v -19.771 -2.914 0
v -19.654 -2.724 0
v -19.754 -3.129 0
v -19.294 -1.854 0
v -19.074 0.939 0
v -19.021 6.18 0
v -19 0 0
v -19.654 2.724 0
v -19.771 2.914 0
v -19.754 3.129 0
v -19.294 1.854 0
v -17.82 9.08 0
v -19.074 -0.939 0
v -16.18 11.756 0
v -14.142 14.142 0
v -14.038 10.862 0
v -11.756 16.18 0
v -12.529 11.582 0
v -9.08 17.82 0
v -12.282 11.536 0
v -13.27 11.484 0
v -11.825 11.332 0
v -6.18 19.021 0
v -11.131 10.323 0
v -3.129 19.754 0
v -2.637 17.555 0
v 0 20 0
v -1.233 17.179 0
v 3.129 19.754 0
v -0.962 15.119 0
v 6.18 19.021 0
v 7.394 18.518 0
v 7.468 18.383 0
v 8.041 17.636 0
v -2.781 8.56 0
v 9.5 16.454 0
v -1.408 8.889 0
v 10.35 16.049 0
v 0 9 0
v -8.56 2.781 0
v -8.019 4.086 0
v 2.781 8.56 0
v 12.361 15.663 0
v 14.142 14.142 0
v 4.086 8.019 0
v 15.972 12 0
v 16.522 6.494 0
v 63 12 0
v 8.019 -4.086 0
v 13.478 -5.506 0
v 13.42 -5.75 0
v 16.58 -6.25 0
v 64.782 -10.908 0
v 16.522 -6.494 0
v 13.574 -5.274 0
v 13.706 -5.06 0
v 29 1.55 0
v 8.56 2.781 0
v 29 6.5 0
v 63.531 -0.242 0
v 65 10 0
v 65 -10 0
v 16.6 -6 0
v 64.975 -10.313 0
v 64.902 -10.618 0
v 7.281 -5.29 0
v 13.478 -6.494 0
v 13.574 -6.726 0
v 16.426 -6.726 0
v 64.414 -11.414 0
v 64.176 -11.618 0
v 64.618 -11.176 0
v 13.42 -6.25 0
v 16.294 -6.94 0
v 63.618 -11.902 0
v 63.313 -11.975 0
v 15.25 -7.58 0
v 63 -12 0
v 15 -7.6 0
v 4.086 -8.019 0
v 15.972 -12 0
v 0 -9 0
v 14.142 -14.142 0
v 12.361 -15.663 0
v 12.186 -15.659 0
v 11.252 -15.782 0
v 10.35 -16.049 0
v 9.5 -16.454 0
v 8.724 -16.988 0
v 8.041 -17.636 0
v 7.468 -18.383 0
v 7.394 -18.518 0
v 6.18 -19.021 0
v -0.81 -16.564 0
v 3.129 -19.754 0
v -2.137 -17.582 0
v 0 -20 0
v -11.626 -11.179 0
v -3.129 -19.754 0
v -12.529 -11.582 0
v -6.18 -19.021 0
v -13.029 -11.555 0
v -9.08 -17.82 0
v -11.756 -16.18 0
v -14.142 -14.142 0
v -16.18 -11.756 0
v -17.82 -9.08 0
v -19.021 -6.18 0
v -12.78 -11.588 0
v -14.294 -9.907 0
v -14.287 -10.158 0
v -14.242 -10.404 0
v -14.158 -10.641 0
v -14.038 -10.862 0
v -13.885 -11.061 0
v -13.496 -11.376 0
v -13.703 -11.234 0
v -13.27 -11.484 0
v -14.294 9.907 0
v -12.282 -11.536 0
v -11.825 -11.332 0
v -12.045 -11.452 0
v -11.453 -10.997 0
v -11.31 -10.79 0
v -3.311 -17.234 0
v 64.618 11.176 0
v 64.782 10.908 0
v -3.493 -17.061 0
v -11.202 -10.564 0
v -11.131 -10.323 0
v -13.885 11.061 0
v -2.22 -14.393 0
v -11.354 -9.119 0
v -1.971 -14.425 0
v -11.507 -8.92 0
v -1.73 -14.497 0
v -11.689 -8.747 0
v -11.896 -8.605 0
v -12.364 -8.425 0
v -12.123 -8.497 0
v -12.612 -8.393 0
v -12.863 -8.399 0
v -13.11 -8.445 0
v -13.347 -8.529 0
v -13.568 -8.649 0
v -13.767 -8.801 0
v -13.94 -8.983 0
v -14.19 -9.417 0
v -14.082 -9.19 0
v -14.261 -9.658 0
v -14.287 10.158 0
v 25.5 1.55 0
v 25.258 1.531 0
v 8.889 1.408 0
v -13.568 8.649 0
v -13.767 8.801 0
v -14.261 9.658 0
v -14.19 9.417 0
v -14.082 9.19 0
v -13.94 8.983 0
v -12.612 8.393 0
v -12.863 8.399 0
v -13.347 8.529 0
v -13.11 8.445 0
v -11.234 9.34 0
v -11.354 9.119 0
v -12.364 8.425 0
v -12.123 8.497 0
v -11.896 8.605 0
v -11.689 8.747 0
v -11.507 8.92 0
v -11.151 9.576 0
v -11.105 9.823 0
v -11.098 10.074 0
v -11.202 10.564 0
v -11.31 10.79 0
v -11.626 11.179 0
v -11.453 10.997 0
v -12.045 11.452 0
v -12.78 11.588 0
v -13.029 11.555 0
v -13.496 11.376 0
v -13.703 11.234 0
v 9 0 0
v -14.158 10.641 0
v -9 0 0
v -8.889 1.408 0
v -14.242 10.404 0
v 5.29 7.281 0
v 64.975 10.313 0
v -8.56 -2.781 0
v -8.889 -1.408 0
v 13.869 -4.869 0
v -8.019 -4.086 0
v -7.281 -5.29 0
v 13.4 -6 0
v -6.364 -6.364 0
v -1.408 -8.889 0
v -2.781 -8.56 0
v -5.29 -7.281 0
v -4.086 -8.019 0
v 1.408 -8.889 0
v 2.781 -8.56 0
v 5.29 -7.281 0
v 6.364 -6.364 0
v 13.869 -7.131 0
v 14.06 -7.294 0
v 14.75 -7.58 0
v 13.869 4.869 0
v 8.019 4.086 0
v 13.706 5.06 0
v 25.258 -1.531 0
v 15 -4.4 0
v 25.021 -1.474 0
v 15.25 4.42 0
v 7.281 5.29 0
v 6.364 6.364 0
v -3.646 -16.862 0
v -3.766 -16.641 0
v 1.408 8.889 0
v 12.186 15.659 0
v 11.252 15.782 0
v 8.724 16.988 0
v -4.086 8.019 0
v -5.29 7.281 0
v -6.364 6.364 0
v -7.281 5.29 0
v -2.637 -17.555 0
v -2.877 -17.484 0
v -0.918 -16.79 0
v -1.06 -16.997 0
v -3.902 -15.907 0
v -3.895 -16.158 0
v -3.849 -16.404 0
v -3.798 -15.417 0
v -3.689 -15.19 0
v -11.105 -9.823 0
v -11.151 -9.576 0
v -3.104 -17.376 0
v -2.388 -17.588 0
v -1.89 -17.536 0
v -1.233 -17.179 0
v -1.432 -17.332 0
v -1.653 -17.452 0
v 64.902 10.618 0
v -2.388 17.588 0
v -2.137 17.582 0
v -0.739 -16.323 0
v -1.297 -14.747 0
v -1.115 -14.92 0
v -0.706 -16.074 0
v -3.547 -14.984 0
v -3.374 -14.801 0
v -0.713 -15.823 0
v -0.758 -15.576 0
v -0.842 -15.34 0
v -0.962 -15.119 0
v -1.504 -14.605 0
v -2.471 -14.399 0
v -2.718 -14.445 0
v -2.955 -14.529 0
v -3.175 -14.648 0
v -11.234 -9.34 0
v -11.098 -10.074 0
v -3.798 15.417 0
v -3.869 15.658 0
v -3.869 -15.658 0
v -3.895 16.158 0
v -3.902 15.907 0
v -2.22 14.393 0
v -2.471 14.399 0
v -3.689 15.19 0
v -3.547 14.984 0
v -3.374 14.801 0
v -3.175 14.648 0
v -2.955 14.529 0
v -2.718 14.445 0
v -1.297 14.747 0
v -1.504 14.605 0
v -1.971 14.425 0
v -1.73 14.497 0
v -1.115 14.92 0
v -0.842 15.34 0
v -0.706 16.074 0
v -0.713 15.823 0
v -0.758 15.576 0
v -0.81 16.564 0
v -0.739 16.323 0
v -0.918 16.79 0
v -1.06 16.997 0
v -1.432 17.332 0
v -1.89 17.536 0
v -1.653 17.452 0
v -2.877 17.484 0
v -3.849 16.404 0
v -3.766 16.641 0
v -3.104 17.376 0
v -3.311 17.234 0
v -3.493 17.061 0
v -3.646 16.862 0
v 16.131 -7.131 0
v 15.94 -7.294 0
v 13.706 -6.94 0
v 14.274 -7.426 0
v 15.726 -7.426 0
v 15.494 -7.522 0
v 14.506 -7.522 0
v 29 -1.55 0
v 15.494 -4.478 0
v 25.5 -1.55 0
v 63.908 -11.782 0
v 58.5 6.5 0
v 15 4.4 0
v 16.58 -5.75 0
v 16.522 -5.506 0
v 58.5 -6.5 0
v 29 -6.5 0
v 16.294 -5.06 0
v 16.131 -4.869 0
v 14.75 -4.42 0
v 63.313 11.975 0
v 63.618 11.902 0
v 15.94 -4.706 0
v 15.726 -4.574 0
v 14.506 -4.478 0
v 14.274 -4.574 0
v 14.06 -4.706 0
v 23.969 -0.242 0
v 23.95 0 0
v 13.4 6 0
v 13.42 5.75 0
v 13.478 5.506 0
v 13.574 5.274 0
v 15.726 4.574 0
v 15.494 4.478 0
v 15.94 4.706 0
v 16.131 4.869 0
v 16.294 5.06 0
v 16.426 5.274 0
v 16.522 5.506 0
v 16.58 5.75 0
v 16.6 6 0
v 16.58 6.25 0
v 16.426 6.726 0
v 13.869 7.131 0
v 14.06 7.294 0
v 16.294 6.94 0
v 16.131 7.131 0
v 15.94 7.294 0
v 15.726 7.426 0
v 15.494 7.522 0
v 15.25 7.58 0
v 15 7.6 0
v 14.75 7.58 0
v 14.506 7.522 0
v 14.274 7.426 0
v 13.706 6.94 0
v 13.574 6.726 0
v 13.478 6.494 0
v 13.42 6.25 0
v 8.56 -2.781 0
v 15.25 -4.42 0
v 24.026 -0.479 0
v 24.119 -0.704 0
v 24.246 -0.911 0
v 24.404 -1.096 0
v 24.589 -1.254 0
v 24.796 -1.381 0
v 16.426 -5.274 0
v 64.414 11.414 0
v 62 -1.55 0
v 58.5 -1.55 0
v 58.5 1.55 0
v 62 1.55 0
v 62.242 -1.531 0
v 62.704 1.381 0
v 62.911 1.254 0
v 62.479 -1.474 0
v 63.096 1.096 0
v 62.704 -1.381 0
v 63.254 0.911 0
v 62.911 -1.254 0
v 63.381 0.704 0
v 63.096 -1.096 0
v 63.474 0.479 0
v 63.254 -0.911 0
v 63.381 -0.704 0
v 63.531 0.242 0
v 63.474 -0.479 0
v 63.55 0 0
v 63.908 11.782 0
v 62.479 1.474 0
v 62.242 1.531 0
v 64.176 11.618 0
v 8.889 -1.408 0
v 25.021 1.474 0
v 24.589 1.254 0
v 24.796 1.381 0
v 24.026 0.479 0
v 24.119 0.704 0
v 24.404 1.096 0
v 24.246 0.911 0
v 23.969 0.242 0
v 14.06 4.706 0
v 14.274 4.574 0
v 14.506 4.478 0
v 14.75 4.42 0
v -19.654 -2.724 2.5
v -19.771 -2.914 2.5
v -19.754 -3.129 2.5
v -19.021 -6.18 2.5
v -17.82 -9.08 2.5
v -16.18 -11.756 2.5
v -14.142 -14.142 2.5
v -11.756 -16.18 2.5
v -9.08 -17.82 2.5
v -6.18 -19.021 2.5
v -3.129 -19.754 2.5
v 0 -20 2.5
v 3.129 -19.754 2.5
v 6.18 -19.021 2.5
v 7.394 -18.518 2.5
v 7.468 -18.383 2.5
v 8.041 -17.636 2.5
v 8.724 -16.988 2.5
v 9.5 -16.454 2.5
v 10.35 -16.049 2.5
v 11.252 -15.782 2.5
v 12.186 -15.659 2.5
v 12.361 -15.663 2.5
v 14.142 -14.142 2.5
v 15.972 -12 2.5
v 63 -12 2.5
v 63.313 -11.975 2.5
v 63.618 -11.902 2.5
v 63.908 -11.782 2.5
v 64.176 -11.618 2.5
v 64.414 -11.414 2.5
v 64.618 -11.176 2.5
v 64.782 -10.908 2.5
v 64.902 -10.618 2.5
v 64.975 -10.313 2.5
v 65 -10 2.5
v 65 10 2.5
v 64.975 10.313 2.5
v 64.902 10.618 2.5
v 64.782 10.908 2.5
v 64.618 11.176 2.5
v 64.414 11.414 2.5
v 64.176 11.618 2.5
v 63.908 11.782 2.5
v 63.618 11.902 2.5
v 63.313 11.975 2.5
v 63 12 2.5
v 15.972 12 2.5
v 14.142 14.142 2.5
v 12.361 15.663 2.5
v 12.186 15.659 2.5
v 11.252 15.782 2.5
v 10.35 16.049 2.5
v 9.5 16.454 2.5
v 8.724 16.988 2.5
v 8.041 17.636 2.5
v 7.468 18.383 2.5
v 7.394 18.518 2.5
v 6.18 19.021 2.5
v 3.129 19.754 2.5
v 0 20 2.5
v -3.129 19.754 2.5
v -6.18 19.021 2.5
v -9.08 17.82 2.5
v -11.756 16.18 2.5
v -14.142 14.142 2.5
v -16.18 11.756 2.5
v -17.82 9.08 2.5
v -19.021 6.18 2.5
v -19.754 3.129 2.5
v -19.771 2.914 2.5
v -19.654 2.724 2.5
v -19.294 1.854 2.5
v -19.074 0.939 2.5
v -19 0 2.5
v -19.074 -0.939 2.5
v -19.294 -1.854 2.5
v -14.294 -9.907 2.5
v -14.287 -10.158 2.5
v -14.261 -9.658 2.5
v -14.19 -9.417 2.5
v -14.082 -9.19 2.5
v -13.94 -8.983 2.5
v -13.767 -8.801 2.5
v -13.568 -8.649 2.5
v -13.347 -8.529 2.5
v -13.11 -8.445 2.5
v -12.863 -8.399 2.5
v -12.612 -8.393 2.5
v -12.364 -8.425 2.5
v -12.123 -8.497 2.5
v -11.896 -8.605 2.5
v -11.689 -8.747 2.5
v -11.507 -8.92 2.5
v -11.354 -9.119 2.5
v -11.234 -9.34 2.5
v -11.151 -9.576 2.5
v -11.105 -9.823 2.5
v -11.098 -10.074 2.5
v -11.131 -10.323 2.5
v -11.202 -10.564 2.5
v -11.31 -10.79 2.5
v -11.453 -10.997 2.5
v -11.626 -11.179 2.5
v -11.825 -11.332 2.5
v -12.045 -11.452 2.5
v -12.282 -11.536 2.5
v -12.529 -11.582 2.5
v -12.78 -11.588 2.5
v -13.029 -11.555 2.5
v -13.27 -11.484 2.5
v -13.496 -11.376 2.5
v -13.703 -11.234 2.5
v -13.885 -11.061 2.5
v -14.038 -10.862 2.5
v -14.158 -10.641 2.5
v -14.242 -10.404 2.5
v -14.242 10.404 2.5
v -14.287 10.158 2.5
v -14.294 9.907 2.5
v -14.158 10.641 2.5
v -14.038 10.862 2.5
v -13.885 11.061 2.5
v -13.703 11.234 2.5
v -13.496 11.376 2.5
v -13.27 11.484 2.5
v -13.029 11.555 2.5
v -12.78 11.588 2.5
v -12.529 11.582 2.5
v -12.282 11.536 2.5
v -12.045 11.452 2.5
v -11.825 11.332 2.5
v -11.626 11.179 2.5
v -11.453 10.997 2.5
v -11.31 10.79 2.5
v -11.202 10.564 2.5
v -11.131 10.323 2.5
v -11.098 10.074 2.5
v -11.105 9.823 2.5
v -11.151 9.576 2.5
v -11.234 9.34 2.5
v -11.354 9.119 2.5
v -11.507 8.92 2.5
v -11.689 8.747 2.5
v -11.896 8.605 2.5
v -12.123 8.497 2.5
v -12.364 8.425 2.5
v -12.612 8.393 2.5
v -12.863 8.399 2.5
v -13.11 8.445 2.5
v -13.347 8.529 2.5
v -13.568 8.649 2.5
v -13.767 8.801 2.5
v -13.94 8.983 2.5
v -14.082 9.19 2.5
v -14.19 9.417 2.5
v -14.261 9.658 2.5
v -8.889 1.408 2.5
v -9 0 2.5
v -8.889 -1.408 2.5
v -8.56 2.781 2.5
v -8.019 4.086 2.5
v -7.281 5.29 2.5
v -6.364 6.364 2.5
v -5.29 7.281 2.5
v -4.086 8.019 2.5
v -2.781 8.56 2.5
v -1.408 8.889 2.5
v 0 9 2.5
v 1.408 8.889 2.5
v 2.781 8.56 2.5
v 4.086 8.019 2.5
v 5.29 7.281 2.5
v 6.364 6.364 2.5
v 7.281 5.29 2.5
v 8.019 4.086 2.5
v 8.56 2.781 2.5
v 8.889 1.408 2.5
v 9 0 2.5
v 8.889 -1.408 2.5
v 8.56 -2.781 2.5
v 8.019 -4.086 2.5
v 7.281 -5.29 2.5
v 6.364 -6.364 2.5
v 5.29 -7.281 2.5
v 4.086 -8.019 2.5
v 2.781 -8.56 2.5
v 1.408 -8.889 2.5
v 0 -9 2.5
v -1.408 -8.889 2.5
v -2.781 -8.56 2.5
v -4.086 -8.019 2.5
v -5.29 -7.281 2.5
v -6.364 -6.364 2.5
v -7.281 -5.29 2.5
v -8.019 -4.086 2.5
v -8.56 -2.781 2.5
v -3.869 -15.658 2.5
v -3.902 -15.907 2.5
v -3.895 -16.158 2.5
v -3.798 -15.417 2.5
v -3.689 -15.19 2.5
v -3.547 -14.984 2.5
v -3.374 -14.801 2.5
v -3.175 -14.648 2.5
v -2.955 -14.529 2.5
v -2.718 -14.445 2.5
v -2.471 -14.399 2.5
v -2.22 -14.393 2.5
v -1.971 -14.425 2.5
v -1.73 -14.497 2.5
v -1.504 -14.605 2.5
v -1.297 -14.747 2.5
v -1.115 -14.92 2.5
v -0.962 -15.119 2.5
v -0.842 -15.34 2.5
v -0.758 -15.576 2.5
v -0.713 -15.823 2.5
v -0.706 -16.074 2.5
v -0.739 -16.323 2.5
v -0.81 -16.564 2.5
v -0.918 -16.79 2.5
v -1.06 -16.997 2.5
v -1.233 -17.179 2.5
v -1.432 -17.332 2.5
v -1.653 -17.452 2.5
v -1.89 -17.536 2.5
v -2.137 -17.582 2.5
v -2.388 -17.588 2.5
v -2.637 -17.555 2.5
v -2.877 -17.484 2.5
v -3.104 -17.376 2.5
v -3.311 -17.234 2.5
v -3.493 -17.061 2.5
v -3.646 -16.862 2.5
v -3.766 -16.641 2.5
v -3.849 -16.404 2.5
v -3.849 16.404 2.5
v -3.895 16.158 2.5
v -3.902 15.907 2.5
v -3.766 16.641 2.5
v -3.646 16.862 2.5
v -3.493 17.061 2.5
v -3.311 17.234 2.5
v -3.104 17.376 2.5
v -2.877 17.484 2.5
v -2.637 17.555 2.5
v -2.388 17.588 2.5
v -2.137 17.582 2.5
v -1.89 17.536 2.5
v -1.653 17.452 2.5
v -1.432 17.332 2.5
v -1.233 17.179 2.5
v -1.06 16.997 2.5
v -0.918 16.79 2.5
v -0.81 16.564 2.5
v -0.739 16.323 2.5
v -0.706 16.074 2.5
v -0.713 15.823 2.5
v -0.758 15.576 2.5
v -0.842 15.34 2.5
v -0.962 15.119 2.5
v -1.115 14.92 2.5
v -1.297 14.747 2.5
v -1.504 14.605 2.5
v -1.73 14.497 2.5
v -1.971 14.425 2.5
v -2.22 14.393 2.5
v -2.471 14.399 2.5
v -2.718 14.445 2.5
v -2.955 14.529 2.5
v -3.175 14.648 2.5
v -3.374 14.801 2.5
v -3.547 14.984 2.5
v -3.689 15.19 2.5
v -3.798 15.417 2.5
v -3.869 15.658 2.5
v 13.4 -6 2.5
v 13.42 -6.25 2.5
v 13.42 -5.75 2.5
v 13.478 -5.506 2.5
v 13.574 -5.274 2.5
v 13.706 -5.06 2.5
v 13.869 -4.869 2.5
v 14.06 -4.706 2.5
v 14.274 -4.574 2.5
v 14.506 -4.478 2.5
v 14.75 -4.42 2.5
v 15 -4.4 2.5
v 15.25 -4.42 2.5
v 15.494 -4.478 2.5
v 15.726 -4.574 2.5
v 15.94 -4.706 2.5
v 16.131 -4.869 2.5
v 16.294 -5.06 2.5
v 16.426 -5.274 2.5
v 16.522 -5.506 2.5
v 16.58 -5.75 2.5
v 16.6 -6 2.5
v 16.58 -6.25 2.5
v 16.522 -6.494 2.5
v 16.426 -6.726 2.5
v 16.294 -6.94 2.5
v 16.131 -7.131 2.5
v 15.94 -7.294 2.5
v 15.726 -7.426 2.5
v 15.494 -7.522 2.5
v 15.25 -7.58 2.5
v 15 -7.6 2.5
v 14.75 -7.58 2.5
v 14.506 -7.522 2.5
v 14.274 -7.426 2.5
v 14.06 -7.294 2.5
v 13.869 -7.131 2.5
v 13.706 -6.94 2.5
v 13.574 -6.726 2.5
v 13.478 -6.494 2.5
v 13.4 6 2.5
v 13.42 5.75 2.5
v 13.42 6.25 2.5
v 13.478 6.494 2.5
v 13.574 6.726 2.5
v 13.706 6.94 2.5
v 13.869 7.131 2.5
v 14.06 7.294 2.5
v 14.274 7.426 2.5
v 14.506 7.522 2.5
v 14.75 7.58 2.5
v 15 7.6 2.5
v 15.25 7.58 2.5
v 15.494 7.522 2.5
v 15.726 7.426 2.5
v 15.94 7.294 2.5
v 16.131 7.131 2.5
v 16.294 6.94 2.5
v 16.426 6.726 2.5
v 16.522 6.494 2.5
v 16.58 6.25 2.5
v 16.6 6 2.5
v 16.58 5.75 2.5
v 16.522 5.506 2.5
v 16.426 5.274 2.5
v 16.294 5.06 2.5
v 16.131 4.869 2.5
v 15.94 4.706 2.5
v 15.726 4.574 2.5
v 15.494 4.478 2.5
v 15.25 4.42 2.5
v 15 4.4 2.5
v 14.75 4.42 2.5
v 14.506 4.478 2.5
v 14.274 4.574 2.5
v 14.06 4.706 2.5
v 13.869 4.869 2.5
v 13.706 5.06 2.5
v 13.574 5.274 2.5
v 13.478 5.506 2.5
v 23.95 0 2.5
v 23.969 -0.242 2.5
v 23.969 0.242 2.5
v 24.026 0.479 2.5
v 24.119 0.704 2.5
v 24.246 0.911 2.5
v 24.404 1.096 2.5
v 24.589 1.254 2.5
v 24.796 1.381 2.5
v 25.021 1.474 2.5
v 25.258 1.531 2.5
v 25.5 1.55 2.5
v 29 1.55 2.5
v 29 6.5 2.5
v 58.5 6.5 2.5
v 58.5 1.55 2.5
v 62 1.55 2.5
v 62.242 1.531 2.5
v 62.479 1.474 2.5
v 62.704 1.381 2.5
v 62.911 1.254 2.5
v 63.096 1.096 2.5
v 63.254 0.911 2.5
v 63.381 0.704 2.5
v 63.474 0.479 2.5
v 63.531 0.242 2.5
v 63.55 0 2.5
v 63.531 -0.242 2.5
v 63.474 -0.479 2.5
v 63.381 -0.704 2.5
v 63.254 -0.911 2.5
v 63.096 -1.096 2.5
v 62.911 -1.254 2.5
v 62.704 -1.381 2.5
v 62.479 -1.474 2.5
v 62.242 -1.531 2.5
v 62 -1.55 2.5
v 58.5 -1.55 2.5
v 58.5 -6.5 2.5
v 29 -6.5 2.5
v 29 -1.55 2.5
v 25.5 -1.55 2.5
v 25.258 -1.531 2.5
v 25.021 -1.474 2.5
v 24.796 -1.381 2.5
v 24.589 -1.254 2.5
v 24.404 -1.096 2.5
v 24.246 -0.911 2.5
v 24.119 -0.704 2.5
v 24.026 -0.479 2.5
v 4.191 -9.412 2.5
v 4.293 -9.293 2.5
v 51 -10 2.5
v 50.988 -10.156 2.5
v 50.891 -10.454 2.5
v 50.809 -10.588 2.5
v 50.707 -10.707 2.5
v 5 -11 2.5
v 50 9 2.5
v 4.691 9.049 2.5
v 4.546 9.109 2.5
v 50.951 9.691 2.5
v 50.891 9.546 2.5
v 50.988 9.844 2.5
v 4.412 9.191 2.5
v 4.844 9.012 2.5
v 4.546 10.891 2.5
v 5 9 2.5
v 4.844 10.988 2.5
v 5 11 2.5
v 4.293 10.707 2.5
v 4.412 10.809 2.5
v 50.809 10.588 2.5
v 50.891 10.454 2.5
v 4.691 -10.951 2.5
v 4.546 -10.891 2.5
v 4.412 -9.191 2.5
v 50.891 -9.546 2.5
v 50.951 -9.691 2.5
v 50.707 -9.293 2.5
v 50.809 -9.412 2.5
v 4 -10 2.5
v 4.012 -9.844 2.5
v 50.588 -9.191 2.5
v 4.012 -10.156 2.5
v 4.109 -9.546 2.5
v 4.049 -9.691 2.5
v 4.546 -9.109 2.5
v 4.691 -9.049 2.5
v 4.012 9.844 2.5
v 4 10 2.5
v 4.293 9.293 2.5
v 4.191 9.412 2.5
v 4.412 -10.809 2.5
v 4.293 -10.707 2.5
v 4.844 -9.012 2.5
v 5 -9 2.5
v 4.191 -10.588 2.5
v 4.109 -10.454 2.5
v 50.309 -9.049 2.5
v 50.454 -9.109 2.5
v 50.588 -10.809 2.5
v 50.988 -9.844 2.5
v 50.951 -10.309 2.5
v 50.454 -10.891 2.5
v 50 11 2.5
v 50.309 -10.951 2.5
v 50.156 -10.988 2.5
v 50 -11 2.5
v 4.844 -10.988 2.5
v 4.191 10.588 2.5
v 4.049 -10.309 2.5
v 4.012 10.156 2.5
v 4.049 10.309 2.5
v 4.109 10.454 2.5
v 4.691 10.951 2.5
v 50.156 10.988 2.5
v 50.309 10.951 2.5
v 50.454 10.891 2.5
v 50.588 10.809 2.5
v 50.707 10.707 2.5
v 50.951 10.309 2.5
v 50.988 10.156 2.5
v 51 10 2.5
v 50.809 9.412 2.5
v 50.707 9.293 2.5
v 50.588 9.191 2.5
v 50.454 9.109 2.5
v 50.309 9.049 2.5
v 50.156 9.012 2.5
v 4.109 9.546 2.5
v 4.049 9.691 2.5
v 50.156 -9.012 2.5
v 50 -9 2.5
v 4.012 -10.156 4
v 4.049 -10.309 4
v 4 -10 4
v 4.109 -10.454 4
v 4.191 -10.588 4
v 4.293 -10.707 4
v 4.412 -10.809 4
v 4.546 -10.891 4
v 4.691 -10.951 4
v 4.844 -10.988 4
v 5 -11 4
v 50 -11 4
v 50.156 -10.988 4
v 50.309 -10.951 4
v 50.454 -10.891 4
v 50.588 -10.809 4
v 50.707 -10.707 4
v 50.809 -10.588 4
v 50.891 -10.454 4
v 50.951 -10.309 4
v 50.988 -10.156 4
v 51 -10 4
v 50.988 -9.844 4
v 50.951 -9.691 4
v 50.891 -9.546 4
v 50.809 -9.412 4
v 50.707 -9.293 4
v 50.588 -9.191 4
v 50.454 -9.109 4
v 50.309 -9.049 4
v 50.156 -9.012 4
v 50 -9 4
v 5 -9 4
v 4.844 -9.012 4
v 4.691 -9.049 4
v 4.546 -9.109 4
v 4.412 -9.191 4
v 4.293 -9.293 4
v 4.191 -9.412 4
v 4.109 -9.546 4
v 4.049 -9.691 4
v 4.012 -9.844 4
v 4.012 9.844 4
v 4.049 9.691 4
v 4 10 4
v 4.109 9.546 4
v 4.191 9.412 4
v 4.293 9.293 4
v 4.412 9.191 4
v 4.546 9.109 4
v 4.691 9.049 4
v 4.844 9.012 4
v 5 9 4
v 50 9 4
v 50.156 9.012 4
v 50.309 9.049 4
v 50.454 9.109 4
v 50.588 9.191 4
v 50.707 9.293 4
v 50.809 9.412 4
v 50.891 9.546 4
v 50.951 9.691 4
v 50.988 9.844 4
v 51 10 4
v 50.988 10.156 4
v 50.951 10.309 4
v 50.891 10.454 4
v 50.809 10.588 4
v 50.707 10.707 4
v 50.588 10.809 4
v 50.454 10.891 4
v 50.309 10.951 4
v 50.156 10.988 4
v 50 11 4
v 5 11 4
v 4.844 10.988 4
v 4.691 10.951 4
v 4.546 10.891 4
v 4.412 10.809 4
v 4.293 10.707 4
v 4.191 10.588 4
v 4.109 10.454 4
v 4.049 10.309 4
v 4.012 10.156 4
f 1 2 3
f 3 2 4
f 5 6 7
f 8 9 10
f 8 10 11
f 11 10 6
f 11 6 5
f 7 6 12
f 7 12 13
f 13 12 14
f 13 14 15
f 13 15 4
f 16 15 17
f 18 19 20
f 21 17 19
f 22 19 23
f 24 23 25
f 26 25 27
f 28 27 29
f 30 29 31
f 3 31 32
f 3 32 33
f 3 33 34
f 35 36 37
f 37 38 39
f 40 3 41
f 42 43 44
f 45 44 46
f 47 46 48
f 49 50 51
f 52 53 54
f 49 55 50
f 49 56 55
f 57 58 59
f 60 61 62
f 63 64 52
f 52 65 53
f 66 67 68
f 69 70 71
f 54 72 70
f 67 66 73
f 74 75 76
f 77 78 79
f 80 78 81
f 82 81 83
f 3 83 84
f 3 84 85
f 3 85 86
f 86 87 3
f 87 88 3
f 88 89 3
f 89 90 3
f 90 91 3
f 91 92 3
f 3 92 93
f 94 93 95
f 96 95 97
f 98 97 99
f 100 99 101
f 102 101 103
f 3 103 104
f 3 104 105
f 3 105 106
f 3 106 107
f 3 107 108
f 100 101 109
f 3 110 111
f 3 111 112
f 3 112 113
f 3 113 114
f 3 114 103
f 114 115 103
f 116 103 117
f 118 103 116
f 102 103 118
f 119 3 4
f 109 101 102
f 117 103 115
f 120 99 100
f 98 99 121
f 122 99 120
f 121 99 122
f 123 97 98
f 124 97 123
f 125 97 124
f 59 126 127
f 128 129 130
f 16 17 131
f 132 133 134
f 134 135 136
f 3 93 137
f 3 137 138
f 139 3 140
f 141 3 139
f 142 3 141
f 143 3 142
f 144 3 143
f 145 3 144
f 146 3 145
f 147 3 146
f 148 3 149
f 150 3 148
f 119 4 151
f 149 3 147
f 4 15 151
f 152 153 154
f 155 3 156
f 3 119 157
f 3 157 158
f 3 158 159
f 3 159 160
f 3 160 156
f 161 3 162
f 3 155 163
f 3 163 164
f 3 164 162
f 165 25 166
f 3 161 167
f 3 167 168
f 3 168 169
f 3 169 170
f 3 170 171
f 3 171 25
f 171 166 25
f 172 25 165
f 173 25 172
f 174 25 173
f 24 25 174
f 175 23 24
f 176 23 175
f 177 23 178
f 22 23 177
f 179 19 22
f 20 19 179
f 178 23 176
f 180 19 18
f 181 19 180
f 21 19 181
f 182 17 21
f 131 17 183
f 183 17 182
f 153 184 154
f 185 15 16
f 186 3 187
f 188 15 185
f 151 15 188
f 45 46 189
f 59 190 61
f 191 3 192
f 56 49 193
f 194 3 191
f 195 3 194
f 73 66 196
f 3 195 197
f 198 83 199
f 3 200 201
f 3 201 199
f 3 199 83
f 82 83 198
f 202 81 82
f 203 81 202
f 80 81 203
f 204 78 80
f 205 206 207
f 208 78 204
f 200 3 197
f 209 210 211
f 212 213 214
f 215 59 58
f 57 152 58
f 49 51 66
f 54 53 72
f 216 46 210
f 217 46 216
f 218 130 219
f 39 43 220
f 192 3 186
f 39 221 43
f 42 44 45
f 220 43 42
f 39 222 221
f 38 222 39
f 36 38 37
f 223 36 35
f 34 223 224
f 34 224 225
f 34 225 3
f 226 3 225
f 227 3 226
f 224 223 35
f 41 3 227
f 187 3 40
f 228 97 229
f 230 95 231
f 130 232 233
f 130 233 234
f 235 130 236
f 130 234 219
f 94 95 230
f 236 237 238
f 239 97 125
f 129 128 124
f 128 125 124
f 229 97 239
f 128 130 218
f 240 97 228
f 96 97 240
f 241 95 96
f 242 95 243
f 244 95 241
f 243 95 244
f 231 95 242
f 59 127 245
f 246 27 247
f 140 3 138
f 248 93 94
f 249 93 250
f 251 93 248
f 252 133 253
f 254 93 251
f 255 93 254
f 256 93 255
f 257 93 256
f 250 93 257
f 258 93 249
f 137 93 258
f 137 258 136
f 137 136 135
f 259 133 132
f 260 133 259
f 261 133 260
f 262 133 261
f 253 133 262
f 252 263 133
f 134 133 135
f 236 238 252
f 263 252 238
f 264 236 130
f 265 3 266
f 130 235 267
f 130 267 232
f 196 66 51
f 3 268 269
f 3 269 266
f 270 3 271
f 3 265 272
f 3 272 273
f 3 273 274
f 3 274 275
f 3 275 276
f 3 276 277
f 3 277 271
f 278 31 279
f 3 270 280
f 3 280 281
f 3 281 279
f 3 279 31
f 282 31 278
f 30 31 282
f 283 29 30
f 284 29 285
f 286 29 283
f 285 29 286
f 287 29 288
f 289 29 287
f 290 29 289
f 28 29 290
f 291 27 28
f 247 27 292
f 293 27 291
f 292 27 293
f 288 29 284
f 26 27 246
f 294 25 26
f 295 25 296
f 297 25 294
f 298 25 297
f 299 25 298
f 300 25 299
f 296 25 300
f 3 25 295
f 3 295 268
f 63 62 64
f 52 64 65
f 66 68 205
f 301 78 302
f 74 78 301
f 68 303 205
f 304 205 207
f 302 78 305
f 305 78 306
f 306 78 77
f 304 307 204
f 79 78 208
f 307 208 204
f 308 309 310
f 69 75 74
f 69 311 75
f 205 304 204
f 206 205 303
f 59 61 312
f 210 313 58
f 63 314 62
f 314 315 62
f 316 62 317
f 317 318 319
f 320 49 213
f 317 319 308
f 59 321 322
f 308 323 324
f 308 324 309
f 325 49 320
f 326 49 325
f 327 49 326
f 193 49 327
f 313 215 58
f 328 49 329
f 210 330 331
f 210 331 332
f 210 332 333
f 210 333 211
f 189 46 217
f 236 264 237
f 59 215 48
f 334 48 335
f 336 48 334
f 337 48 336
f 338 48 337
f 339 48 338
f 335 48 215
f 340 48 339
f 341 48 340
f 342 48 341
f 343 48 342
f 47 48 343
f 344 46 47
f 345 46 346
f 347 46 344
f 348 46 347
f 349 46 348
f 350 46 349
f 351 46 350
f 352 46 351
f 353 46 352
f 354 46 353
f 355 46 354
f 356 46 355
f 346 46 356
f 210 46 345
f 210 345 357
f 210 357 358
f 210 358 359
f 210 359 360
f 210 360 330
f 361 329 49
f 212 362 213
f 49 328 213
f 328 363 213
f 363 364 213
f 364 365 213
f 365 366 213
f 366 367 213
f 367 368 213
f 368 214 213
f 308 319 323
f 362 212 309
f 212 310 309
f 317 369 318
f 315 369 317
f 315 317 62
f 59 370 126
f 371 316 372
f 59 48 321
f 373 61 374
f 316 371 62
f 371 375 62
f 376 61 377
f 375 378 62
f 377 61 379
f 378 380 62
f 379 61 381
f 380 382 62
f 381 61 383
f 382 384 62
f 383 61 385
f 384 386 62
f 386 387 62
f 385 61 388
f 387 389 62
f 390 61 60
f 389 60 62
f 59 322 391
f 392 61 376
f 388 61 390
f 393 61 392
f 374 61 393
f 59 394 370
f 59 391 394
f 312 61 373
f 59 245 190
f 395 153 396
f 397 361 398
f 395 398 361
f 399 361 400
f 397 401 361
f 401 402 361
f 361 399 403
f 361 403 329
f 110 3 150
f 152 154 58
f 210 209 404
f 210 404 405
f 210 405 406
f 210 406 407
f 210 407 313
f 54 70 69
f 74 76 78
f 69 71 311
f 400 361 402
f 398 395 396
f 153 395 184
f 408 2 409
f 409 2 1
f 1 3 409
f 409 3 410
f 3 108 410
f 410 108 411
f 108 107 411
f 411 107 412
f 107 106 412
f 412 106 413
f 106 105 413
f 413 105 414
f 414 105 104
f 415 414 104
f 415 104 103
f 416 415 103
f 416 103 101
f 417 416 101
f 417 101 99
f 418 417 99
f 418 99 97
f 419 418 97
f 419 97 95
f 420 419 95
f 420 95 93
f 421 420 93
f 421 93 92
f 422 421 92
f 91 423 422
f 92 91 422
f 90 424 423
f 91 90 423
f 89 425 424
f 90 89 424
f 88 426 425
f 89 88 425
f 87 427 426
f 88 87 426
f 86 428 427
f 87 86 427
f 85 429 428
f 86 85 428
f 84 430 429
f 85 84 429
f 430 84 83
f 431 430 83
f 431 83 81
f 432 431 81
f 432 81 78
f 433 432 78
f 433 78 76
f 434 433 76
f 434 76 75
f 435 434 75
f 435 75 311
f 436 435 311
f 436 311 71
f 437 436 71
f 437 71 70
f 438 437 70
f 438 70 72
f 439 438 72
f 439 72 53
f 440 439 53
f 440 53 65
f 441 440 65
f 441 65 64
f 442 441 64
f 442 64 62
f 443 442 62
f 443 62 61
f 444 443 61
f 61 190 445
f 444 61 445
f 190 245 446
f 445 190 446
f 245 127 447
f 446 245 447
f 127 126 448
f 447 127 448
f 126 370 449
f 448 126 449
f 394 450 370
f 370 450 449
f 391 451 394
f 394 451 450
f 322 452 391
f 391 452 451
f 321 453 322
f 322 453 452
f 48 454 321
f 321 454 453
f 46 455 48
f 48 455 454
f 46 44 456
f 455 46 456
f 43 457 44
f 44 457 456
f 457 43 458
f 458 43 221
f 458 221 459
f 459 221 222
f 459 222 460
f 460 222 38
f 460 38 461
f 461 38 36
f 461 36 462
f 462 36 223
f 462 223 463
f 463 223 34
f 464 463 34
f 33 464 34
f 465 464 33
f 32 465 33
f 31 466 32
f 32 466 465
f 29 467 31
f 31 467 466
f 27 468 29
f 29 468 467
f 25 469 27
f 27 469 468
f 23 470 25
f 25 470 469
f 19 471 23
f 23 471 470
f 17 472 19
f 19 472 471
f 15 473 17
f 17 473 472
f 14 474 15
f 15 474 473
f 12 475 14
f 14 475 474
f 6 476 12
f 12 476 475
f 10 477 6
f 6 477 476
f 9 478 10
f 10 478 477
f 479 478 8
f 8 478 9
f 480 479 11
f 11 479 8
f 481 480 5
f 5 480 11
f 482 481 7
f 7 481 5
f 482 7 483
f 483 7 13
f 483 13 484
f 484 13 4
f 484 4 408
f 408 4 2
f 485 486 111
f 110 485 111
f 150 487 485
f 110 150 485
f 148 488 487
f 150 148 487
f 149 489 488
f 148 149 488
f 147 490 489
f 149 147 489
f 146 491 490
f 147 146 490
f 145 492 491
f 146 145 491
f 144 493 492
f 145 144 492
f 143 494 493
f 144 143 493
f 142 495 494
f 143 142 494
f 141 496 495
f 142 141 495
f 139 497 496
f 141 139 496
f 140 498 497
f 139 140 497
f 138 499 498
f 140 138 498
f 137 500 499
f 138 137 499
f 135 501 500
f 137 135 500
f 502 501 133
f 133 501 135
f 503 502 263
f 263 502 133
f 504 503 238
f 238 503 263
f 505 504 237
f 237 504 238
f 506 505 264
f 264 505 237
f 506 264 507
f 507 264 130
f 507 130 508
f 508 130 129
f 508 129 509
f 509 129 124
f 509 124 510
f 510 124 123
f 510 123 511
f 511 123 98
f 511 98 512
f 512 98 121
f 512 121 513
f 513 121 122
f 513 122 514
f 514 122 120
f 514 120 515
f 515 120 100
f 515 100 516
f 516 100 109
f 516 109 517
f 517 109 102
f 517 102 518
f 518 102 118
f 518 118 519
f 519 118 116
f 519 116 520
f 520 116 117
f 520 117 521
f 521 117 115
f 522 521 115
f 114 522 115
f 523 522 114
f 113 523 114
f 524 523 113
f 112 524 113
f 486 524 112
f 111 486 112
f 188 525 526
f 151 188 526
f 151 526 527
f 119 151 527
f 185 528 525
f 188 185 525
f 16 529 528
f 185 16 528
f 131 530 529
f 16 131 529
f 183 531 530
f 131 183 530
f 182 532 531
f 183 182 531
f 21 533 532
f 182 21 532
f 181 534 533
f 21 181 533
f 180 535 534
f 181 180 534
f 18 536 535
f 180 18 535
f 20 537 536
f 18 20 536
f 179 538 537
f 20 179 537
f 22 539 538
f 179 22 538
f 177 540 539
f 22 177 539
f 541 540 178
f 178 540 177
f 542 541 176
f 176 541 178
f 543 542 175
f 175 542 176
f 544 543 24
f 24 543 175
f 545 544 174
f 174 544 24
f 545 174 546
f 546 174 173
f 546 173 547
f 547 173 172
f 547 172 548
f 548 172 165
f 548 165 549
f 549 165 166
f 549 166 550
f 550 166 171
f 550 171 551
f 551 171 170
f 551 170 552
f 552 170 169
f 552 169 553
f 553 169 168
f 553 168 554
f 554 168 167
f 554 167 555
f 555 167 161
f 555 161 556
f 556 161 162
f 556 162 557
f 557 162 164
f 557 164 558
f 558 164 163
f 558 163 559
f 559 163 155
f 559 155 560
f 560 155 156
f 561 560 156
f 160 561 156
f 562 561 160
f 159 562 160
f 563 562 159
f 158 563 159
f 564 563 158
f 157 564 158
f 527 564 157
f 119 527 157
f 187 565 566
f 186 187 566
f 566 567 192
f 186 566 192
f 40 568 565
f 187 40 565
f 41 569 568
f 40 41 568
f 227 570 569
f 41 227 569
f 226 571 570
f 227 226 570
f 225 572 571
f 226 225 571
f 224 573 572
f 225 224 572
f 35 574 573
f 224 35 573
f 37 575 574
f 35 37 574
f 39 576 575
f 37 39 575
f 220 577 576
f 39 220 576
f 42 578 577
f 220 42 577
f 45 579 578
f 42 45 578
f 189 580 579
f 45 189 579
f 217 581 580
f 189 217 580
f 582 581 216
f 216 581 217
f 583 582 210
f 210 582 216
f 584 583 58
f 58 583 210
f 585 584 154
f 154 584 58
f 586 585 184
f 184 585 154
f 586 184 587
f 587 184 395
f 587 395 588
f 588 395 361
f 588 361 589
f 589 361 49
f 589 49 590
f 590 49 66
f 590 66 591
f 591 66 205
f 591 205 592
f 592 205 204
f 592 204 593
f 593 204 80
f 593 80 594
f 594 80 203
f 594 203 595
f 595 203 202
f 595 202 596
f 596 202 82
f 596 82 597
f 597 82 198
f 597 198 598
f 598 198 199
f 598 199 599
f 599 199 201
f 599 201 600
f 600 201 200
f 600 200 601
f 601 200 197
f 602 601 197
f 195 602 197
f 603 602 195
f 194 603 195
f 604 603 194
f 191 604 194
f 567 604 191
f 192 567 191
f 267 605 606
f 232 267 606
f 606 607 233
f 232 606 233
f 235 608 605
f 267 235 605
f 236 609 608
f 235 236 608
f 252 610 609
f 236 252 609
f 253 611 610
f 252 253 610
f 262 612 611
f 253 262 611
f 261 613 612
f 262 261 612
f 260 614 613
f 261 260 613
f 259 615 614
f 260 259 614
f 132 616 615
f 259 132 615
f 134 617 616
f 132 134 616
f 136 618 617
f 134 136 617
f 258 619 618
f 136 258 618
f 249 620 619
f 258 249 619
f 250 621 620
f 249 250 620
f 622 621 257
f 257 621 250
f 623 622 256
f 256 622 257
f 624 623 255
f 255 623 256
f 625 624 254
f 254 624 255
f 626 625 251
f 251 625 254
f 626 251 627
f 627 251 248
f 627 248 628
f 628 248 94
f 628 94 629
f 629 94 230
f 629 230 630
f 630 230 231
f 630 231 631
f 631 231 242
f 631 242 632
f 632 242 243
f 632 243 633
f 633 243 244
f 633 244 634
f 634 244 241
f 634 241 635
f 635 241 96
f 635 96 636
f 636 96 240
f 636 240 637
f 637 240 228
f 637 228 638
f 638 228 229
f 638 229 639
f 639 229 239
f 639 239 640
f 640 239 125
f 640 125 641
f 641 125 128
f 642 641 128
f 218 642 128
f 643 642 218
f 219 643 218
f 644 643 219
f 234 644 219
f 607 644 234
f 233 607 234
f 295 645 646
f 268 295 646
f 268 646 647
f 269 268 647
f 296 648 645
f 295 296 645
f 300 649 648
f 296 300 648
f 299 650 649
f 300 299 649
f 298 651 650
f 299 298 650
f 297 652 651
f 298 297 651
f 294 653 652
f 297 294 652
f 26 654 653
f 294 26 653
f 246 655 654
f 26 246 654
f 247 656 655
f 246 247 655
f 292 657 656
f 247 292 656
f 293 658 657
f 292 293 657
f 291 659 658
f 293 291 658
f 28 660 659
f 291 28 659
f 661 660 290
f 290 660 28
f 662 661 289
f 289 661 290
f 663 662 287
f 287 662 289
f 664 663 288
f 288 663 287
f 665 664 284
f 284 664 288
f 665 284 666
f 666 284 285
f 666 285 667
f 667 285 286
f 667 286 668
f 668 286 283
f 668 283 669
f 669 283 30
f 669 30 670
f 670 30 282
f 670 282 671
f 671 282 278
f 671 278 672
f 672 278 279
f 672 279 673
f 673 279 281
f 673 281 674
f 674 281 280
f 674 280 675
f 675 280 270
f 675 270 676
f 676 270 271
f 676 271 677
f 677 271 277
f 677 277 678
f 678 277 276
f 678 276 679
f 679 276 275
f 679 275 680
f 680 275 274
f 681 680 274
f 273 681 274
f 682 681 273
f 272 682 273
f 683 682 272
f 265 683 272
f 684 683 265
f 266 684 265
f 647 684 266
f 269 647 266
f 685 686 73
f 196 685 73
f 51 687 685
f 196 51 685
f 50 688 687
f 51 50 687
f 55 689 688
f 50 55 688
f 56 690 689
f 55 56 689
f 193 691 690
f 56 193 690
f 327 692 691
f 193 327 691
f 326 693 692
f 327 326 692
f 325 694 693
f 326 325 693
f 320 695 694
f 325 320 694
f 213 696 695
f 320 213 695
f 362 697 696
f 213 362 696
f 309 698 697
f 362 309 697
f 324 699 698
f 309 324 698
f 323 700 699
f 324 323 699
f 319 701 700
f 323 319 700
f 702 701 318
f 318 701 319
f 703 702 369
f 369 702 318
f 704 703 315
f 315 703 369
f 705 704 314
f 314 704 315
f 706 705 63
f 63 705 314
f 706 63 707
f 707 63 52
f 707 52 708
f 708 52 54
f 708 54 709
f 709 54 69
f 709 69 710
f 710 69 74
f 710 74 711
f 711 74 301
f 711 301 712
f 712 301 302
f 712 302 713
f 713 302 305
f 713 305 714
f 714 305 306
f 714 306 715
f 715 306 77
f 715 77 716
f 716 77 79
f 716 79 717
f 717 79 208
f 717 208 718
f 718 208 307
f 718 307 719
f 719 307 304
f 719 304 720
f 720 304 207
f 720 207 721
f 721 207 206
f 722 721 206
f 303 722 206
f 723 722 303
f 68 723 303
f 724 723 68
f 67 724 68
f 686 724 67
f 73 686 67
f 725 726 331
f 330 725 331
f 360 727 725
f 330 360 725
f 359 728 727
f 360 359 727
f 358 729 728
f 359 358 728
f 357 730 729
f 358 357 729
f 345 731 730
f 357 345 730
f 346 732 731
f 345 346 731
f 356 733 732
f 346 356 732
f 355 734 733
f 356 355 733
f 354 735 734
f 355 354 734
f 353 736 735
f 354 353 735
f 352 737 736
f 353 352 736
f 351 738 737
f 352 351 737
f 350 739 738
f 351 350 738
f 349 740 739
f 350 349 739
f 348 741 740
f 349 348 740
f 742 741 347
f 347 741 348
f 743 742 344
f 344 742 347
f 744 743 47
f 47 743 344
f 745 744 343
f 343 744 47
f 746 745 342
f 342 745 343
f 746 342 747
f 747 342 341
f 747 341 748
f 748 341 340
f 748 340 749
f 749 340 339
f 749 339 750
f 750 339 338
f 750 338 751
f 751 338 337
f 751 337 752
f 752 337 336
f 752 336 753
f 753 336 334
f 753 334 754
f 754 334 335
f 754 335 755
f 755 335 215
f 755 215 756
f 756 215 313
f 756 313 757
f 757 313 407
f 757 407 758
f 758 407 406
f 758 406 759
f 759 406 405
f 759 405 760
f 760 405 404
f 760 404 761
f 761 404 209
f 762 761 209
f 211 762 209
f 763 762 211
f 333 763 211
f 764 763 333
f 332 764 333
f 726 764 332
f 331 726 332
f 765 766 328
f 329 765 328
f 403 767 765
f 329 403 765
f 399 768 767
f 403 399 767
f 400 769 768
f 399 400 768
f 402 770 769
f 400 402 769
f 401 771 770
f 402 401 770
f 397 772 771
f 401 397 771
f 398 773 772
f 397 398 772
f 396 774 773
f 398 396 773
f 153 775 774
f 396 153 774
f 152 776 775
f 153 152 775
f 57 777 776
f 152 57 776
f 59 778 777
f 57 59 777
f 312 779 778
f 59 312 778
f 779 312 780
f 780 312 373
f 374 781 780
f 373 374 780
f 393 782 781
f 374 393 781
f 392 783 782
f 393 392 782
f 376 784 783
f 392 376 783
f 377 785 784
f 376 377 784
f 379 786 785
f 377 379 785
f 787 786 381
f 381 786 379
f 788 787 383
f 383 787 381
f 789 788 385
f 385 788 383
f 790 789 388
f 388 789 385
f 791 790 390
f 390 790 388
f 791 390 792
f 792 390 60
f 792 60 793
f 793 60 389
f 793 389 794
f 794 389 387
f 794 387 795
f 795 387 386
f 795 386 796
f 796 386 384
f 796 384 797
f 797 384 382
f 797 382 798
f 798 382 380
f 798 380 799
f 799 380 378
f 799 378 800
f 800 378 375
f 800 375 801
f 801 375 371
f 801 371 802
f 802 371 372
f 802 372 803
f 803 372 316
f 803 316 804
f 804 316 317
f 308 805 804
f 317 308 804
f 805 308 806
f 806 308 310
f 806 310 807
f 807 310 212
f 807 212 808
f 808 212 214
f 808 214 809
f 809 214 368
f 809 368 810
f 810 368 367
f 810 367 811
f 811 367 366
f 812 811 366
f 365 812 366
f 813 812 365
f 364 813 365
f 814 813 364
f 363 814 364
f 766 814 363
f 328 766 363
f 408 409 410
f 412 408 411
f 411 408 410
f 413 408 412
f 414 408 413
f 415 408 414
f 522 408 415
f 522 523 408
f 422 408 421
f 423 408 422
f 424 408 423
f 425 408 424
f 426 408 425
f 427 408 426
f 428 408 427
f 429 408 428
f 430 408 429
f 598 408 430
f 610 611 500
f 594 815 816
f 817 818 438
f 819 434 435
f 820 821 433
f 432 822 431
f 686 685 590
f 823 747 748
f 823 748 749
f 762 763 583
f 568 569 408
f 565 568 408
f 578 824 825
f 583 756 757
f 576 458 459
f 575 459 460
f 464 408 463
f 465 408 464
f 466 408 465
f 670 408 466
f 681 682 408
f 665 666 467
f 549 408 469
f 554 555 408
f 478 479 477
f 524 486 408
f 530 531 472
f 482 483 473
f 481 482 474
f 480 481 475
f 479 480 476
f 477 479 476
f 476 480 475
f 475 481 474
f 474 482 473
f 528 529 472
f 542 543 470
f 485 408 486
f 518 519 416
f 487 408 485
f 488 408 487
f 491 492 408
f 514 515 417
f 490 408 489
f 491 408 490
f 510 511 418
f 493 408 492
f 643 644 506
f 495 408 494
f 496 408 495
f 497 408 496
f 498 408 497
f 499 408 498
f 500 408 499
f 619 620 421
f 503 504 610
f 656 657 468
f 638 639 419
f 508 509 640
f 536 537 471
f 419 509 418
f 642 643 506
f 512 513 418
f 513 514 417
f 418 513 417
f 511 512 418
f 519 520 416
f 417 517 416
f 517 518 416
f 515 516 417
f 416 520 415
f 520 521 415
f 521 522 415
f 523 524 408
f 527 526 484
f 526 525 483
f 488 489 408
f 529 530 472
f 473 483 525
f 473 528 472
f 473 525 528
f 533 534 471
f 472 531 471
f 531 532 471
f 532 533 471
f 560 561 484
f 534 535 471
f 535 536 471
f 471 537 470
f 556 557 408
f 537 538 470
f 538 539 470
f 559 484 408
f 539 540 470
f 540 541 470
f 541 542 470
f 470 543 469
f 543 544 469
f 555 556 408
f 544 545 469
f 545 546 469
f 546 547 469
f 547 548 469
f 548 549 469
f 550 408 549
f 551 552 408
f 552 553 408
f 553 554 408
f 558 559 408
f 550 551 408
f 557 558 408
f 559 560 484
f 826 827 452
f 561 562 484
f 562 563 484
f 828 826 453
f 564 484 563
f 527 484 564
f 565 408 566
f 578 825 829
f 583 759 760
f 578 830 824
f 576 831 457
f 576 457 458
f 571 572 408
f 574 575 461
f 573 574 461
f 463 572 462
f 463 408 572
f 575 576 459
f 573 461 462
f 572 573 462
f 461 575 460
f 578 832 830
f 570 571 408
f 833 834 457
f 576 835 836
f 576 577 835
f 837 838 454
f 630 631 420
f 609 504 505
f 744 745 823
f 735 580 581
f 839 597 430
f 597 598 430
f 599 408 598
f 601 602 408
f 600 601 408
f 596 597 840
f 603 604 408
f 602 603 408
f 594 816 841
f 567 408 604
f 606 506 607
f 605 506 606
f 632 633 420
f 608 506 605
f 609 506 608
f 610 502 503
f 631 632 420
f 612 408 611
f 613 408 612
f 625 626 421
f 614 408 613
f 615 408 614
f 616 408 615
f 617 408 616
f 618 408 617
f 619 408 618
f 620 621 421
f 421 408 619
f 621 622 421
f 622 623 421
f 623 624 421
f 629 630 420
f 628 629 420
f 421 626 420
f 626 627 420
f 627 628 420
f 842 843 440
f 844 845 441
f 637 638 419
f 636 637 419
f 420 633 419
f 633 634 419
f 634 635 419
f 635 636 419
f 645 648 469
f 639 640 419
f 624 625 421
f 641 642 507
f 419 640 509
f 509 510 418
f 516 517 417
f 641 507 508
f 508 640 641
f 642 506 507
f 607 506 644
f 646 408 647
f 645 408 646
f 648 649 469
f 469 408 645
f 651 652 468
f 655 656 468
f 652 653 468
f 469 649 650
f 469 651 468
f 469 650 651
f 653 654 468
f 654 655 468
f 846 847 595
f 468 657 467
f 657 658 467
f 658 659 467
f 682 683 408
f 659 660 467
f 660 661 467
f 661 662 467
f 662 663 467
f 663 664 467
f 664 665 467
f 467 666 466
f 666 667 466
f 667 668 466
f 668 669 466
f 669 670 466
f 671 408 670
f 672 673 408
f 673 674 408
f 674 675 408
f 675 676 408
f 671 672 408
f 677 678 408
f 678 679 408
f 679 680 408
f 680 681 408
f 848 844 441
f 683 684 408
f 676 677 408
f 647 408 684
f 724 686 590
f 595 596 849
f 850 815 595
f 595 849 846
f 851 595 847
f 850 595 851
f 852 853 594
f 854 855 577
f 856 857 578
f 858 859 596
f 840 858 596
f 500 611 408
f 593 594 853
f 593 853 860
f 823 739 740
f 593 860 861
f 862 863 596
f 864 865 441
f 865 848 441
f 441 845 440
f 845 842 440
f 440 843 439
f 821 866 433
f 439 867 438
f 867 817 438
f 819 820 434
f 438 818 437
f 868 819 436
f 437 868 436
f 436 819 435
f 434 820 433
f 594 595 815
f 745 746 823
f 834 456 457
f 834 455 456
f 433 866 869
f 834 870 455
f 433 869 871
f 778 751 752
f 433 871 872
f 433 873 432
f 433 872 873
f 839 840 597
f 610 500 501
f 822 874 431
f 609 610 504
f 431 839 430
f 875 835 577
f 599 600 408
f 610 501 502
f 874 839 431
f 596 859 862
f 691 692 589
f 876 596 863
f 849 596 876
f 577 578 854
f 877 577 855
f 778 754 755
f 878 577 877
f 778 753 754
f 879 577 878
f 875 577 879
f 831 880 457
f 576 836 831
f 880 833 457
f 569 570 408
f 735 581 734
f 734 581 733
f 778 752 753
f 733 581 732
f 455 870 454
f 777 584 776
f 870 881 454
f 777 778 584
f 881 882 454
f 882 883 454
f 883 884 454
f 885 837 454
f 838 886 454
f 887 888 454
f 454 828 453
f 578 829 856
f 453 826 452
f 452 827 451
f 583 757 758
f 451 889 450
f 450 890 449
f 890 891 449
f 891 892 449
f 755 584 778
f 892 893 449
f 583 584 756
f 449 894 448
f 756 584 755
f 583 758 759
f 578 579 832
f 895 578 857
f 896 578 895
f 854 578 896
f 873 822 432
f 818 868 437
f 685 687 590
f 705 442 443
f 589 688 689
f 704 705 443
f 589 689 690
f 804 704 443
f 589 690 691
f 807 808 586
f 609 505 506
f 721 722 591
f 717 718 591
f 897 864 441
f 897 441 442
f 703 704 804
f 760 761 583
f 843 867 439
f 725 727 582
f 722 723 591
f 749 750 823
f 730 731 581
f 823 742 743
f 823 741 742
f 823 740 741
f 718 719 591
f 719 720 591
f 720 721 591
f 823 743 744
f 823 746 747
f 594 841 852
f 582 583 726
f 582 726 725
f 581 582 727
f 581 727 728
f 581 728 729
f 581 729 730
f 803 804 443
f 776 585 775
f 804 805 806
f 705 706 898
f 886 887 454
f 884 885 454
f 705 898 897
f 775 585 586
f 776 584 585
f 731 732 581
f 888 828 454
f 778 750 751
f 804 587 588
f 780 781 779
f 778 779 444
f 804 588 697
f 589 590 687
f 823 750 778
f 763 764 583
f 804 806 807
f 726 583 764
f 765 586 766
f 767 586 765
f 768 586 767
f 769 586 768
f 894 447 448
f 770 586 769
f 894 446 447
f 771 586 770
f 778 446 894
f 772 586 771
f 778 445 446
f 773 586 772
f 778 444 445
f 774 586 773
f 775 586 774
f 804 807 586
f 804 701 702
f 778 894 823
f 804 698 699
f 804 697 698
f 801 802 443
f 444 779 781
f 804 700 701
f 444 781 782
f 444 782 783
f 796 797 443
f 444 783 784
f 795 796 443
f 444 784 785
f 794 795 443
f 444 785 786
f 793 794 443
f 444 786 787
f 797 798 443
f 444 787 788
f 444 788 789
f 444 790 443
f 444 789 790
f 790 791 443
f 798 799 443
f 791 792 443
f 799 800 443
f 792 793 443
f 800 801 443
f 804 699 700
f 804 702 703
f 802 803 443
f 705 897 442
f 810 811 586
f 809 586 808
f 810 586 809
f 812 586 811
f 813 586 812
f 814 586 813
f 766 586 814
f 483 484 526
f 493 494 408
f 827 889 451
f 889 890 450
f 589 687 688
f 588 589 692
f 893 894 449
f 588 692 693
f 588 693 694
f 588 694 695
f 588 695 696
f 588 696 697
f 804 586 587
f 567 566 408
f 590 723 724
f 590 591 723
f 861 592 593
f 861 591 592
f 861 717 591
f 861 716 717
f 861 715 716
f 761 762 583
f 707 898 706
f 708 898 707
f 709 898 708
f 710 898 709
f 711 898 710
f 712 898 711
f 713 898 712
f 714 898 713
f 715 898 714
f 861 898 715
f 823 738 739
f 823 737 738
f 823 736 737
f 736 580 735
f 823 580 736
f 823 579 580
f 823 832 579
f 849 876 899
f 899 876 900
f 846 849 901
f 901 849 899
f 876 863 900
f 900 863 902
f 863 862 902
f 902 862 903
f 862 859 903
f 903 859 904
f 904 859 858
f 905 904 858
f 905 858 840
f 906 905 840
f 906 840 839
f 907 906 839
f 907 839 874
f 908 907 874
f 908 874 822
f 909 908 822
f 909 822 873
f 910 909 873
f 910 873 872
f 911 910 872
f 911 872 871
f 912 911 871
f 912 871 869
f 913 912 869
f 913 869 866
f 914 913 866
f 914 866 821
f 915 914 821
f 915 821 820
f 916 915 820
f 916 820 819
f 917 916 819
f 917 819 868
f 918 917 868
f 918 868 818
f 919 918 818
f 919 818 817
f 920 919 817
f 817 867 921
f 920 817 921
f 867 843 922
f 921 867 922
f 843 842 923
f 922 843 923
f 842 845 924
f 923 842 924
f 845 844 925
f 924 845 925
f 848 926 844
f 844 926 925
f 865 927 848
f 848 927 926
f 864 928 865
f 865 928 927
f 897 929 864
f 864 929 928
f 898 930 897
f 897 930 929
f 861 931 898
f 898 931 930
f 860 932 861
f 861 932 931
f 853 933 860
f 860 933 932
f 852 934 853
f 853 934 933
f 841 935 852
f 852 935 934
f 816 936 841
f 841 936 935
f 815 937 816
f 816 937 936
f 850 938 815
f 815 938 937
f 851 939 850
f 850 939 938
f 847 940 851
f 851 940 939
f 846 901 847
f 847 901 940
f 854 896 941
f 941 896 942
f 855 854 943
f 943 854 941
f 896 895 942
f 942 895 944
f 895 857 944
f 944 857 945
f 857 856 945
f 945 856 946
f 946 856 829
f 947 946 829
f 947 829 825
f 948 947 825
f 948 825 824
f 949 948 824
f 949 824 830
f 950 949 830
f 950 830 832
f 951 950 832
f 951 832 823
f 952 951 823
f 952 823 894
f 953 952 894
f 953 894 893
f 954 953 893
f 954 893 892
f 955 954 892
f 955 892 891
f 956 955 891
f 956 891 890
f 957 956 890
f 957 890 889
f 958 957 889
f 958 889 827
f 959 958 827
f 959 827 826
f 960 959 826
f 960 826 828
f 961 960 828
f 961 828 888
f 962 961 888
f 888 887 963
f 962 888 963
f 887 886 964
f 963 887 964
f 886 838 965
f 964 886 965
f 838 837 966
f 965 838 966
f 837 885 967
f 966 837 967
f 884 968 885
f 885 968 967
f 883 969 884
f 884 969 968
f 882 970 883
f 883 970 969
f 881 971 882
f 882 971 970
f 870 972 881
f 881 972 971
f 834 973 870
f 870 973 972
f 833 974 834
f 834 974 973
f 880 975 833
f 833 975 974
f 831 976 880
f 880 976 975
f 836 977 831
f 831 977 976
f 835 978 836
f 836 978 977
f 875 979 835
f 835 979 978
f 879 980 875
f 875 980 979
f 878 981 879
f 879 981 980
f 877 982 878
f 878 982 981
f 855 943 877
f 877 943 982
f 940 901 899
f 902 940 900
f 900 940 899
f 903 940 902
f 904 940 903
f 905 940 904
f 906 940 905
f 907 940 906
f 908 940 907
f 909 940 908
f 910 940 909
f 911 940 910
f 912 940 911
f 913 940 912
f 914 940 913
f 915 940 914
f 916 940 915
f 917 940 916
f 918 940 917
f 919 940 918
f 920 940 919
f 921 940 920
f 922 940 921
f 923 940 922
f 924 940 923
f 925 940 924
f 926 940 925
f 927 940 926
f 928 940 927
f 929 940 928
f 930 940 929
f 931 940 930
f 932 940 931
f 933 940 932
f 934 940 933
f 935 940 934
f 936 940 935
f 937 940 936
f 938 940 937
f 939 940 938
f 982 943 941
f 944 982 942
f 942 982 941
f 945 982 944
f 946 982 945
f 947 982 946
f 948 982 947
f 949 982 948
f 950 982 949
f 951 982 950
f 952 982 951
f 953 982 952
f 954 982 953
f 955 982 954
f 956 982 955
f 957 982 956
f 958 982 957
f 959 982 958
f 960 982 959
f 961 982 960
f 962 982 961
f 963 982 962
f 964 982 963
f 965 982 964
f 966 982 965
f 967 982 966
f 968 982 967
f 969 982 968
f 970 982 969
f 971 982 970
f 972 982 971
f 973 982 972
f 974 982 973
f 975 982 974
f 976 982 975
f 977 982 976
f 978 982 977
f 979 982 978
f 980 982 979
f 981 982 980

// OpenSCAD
$fn = 40;





difference() {
	union() {
		cylinder(h = 2.5, r=20);
		hull() {
			translate([0,10,0]) cylinder(h = 2.5, r=2);
			translate([0,-10,0]) cylinder(h = 2.5, r=2);
			translate([63,10,0]) cylinder(h = 2.5, r=2);
			translate([63,-10,0]) cylinder(h = 2.5, r=2);
		}

		translate([5,10,1]) slit(45,1,3);
		translate([5,-10,1]) slit(45,1,3);
	}
	
	translate([29,0,0])
	serverHole();

	translate([0,0,-0.2])
	union() {
		rotate(a=[0,0,0])
		headMountScrewhole();

		rotate(a=[0,0,120])
		headMountScrewhole();

		rotate(a=[0,0,-120])
		headMountScrewhole();

		cylinder(h = 6, r=9);	

		rotate(a=[0,0,60]) headMountScrewholeSpace();
	}	
}




module headMountScrewhole() {
	translate([15,6,0]) cylinder(h = 6, r=1.6);
	translate([15,-6,0]) cylinder(h = 6, r=1.6);
}

module headMountScrewholeSpace() {
	rotate(a=[0,0,0]) translate([25,0,0]) cylinder(h = 6, r=6);	
	rotate(a=[0,0,120]) translate([25,0,0]) cylinder(h = 6, r=6);	
	rotate(a=[0,0,-120]) translate([25,0,0]) cylinder(h = 6, r=6);	
}

module serverHole() {
	union() {
		translate([0,-13/2,-0.2])
		cube(size=[29.5,13,5]);

		translate([0-3.5,0,-0.2])
		slit(5,3.1/2,6);

		translate([29.5+3.5,0,-0.2])
		rotate(a=[0,0,180])
		slit(5,3.1/2,6);	
	}
}


module slit(length,radius,height) {
	hull() {
		translate([length,0,0]) cylinder(h = height, r=radius);
		translate([0,0,0]) cylinder(h = height, r=radius);
	}
}
